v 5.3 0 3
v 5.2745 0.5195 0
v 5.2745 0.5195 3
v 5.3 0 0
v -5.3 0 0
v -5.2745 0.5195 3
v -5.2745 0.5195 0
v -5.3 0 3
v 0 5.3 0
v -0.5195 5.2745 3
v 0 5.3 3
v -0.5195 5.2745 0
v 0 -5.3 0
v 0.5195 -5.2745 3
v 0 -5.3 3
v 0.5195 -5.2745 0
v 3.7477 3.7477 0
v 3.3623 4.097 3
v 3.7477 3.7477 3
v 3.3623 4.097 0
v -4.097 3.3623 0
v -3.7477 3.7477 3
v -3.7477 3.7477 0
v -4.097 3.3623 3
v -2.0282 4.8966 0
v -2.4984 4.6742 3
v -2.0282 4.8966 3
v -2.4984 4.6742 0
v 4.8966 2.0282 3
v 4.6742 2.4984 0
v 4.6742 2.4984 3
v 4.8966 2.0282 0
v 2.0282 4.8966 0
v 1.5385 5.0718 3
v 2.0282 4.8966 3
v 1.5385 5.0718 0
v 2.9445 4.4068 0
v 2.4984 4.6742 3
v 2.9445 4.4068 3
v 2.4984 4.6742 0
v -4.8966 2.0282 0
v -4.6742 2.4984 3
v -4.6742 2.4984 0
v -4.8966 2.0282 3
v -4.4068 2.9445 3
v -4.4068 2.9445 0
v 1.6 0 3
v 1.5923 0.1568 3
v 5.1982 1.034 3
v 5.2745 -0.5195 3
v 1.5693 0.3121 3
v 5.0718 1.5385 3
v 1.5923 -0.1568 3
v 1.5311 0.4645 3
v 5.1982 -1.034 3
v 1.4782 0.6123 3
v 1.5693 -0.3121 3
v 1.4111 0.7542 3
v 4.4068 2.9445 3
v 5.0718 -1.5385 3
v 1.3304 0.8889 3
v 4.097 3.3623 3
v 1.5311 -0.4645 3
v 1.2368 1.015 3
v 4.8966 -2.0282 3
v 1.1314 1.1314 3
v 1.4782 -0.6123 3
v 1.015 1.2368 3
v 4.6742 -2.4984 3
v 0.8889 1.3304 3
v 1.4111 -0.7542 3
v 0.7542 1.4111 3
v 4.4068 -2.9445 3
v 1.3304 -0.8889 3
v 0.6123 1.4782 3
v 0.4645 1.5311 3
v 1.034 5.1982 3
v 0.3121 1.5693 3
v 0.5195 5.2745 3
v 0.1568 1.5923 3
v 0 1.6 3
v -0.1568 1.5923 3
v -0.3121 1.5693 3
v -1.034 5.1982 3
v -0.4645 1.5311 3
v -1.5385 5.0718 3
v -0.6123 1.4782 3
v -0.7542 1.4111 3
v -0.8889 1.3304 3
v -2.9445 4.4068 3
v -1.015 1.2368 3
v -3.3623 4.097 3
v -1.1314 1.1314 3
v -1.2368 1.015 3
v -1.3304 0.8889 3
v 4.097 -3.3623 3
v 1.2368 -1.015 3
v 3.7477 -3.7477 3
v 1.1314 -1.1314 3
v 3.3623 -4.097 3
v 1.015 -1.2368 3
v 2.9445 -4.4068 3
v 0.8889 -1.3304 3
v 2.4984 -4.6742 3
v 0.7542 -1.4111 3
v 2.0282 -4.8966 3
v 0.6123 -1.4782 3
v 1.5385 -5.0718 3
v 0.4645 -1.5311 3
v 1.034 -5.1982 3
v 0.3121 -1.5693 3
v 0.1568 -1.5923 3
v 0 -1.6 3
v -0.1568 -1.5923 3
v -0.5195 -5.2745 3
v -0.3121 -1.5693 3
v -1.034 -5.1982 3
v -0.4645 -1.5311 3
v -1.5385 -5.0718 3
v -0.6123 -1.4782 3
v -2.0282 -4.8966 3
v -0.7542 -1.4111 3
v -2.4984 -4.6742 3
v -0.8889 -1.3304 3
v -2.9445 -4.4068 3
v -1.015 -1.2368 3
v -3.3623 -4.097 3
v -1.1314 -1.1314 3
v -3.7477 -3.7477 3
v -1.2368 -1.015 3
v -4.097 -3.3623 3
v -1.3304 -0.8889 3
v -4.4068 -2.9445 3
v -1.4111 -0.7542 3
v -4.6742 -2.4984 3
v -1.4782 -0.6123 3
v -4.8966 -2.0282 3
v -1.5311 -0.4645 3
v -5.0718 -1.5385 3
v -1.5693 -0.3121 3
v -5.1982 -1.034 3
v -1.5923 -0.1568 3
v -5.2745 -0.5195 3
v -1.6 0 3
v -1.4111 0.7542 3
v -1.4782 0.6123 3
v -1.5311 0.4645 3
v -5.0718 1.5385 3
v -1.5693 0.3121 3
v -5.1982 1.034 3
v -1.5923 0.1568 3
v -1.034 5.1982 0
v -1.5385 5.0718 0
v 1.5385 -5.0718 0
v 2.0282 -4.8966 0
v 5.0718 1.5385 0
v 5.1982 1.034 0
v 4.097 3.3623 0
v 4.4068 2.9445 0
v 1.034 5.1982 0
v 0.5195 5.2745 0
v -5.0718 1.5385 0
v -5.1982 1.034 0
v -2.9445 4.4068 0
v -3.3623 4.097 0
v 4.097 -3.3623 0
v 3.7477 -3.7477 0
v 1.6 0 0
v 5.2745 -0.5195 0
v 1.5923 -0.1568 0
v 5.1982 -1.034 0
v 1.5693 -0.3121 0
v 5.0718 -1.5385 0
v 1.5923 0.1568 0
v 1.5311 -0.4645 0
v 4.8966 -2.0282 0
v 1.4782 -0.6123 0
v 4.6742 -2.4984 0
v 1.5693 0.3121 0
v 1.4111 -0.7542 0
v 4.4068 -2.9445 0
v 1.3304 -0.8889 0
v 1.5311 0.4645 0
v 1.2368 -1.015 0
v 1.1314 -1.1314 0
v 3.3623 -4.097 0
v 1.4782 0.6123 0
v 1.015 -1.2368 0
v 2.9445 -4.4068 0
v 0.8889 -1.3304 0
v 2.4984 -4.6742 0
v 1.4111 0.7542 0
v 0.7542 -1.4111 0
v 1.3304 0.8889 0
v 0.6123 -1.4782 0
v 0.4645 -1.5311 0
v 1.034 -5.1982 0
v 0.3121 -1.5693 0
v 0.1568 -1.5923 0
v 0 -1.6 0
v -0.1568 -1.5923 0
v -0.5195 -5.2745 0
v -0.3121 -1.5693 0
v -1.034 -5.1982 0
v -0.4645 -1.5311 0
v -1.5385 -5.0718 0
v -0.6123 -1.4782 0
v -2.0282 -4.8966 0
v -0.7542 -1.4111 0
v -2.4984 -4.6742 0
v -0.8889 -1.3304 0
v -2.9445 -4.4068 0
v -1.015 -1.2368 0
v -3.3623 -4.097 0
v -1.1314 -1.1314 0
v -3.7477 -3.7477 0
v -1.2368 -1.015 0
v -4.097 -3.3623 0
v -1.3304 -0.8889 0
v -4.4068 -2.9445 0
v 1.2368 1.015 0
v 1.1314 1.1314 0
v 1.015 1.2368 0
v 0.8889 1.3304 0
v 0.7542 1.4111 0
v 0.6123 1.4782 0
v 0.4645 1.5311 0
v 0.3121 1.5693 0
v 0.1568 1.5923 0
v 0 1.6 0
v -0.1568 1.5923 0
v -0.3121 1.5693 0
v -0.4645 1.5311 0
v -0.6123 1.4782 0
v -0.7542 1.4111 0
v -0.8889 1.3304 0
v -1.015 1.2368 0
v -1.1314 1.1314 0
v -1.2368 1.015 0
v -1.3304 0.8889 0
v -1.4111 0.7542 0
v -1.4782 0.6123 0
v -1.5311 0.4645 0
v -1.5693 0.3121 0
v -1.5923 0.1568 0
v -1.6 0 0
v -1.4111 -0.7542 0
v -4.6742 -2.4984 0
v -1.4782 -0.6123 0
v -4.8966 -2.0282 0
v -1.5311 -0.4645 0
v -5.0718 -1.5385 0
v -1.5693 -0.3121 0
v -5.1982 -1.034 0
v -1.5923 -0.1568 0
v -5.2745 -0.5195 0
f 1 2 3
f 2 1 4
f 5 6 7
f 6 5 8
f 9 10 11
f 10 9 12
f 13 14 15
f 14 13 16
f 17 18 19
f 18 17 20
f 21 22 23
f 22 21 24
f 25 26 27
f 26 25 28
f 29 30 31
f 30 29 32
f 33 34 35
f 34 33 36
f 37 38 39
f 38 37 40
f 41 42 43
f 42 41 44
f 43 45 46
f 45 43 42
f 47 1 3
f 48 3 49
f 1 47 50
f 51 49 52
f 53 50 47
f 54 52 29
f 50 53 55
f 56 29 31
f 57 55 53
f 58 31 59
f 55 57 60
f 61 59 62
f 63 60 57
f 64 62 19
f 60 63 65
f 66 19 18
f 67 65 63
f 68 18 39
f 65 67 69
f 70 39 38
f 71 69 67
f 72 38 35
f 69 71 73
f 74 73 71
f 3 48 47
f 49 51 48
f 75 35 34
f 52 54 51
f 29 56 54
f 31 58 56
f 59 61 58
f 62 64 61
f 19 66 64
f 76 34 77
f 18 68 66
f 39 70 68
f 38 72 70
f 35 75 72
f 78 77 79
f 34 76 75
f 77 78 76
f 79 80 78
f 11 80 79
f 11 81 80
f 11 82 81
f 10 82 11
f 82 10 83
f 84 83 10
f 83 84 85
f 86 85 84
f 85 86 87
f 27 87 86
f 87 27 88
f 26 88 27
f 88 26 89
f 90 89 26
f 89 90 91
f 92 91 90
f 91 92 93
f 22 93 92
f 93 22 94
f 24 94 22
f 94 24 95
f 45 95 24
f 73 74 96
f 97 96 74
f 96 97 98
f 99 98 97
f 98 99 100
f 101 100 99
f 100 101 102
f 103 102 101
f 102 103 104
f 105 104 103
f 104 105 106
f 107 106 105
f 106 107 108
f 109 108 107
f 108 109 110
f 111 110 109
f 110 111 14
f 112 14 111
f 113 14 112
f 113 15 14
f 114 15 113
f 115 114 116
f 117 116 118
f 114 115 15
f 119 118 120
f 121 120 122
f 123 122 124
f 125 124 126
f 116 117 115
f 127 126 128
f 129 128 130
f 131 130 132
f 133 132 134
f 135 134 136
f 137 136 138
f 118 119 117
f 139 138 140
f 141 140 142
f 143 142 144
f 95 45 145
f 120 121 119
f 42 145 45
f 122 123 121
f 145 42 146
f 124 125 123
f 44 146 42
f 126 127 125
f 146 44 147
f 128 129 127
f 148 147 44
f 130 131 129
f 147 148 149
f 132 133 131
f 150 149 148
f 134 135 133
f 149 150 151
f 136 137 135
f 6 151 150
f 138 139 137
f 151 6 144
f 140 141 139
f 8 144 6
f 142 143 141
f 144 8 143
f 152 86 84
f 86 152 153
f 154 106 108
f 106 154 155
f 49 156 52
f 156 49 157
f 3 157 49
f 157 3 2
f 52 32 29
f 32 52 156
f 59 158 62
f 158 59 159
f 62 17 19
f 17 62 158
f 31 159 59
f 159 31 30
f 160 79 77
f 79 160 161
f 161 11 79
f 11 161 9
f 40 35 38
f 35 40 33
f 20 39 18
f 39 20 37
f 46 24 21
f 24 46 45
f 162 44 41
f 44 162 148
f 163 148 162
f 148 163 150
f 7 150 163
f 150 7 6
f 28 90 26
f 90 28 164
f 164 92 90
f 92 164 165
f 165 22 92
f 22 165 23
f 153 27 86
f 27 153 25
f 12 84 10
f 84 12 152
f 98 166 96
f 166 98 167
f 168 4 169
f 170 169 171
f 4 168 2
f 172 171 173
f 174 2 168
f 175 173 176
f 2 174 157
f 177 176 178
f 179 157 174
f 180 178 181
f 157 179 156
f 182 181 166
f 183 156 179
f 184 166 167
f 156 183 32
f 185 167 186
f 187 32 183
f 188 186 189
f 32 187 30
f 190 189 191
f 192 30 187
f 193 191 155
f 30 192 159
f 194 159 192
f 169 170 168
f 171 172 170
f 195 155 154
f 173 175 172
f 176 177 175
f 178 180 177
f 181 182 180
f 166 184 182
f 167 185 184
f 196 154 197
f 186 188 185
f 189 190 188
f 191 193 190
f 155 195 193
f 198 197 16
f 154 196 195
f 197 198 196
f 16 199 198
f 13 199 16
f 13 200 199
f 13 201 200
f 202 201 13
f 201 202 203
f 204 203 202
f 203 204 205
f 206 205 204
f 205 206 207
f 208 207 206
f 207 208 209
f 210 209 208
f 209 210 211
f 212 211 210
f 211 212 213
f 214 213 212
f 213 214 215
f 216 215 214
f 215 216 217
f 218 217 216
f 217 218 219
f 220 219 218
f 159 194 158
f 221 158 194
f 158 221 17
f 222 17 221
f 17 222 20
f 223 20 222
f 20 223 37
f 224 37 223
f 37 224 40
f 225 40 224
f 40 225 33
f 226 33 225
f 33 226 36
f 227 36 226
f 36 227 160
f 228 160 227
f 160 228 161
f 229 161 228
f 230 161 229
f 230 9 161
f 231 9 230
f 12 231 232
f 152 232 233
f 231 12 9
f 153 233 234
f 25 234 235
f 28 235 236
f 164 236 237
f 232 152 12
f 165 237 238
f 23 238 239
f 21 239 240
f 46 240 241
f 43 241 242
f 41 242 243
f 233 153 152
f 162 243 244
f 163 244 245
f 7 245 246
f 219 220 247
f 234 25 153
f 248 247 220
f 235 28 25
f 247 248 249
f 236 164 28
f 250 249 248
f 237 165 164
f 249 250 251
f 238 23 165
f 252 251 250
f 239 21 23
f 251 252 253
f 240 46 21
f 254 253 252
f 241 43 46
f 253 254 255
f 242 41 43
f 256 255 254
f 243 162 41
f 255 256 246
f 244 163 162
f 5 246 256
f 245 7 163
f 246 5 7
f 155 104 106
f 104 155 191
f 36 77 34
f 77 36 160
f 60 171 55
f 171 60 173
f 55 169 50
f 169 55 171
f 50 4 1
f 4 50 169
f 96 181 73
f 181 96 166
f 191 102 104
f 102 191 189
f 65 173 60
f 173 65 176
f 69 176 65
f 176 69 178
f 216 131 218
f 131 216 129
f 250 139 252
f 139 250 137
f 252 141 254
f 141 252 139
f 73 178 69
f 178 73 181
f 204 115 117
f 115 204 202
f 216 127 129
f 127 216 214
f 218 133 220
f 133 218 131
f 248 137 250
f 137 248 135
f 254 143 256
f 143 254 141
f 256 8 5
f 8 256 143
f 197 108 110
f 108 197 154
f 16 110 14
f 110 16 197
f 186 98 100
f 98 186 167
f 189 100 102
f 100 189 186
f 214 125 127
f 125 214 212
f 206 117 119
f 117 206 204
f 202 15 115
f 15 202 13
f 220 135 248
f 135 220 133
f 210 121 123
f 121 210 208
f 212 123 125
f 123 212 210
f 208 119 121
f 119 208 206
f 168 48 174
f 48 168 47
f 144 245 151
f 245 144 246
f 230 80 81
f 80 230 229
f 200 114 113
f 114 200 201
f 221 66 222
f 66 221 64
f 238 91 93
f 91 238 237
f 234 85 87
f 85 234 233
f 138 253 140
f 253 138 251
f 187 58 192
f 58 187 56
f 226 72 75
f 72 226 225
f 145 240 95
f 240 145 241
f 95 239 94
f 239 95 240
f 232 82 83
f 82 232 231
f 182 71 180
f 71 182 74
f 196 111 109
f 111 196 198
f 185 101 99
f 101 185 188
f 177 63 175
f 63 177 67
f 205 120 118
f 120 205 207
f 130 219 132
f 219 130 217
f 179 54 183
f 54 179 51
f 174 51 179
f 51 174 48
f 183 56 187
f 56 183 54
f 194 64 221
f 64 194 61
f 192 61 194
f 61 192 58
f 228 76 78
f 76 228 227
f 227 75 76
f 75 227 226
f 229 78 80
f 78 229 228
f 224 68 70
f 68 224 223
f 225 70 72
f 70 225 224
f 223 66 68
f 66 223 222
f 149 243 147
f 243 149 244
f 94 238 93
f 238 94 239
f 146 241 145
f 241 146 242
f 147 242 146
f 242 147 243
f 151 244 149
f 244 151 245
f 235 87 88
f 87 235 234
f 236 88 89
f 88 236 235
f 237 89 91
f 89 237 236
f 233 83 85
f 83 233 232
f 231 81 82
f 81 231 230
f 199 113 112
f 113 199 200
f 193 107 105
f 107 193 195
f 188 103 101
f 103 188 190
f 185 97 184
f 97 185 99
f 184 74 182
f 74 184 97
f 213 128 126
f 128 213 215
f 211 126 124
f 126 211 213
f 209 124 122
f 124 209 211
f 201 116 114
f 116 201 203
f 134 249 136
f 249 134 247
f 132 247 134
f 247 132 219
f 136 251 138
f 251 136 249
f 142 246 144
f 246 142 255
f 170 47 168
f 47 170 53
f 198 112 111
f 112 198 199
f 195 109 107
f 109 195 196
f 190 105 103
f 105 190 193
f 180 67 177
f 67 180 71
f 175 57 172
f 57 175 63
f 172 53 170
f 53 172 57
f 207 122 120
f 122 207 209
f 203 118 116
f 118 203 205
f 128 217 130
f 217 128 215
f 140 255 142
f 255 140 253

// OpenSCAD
difference() {
cylinder(d=10.6, h=3, $fn=64);
cylinder(d=3.2, h=10, $fn=64);
}
